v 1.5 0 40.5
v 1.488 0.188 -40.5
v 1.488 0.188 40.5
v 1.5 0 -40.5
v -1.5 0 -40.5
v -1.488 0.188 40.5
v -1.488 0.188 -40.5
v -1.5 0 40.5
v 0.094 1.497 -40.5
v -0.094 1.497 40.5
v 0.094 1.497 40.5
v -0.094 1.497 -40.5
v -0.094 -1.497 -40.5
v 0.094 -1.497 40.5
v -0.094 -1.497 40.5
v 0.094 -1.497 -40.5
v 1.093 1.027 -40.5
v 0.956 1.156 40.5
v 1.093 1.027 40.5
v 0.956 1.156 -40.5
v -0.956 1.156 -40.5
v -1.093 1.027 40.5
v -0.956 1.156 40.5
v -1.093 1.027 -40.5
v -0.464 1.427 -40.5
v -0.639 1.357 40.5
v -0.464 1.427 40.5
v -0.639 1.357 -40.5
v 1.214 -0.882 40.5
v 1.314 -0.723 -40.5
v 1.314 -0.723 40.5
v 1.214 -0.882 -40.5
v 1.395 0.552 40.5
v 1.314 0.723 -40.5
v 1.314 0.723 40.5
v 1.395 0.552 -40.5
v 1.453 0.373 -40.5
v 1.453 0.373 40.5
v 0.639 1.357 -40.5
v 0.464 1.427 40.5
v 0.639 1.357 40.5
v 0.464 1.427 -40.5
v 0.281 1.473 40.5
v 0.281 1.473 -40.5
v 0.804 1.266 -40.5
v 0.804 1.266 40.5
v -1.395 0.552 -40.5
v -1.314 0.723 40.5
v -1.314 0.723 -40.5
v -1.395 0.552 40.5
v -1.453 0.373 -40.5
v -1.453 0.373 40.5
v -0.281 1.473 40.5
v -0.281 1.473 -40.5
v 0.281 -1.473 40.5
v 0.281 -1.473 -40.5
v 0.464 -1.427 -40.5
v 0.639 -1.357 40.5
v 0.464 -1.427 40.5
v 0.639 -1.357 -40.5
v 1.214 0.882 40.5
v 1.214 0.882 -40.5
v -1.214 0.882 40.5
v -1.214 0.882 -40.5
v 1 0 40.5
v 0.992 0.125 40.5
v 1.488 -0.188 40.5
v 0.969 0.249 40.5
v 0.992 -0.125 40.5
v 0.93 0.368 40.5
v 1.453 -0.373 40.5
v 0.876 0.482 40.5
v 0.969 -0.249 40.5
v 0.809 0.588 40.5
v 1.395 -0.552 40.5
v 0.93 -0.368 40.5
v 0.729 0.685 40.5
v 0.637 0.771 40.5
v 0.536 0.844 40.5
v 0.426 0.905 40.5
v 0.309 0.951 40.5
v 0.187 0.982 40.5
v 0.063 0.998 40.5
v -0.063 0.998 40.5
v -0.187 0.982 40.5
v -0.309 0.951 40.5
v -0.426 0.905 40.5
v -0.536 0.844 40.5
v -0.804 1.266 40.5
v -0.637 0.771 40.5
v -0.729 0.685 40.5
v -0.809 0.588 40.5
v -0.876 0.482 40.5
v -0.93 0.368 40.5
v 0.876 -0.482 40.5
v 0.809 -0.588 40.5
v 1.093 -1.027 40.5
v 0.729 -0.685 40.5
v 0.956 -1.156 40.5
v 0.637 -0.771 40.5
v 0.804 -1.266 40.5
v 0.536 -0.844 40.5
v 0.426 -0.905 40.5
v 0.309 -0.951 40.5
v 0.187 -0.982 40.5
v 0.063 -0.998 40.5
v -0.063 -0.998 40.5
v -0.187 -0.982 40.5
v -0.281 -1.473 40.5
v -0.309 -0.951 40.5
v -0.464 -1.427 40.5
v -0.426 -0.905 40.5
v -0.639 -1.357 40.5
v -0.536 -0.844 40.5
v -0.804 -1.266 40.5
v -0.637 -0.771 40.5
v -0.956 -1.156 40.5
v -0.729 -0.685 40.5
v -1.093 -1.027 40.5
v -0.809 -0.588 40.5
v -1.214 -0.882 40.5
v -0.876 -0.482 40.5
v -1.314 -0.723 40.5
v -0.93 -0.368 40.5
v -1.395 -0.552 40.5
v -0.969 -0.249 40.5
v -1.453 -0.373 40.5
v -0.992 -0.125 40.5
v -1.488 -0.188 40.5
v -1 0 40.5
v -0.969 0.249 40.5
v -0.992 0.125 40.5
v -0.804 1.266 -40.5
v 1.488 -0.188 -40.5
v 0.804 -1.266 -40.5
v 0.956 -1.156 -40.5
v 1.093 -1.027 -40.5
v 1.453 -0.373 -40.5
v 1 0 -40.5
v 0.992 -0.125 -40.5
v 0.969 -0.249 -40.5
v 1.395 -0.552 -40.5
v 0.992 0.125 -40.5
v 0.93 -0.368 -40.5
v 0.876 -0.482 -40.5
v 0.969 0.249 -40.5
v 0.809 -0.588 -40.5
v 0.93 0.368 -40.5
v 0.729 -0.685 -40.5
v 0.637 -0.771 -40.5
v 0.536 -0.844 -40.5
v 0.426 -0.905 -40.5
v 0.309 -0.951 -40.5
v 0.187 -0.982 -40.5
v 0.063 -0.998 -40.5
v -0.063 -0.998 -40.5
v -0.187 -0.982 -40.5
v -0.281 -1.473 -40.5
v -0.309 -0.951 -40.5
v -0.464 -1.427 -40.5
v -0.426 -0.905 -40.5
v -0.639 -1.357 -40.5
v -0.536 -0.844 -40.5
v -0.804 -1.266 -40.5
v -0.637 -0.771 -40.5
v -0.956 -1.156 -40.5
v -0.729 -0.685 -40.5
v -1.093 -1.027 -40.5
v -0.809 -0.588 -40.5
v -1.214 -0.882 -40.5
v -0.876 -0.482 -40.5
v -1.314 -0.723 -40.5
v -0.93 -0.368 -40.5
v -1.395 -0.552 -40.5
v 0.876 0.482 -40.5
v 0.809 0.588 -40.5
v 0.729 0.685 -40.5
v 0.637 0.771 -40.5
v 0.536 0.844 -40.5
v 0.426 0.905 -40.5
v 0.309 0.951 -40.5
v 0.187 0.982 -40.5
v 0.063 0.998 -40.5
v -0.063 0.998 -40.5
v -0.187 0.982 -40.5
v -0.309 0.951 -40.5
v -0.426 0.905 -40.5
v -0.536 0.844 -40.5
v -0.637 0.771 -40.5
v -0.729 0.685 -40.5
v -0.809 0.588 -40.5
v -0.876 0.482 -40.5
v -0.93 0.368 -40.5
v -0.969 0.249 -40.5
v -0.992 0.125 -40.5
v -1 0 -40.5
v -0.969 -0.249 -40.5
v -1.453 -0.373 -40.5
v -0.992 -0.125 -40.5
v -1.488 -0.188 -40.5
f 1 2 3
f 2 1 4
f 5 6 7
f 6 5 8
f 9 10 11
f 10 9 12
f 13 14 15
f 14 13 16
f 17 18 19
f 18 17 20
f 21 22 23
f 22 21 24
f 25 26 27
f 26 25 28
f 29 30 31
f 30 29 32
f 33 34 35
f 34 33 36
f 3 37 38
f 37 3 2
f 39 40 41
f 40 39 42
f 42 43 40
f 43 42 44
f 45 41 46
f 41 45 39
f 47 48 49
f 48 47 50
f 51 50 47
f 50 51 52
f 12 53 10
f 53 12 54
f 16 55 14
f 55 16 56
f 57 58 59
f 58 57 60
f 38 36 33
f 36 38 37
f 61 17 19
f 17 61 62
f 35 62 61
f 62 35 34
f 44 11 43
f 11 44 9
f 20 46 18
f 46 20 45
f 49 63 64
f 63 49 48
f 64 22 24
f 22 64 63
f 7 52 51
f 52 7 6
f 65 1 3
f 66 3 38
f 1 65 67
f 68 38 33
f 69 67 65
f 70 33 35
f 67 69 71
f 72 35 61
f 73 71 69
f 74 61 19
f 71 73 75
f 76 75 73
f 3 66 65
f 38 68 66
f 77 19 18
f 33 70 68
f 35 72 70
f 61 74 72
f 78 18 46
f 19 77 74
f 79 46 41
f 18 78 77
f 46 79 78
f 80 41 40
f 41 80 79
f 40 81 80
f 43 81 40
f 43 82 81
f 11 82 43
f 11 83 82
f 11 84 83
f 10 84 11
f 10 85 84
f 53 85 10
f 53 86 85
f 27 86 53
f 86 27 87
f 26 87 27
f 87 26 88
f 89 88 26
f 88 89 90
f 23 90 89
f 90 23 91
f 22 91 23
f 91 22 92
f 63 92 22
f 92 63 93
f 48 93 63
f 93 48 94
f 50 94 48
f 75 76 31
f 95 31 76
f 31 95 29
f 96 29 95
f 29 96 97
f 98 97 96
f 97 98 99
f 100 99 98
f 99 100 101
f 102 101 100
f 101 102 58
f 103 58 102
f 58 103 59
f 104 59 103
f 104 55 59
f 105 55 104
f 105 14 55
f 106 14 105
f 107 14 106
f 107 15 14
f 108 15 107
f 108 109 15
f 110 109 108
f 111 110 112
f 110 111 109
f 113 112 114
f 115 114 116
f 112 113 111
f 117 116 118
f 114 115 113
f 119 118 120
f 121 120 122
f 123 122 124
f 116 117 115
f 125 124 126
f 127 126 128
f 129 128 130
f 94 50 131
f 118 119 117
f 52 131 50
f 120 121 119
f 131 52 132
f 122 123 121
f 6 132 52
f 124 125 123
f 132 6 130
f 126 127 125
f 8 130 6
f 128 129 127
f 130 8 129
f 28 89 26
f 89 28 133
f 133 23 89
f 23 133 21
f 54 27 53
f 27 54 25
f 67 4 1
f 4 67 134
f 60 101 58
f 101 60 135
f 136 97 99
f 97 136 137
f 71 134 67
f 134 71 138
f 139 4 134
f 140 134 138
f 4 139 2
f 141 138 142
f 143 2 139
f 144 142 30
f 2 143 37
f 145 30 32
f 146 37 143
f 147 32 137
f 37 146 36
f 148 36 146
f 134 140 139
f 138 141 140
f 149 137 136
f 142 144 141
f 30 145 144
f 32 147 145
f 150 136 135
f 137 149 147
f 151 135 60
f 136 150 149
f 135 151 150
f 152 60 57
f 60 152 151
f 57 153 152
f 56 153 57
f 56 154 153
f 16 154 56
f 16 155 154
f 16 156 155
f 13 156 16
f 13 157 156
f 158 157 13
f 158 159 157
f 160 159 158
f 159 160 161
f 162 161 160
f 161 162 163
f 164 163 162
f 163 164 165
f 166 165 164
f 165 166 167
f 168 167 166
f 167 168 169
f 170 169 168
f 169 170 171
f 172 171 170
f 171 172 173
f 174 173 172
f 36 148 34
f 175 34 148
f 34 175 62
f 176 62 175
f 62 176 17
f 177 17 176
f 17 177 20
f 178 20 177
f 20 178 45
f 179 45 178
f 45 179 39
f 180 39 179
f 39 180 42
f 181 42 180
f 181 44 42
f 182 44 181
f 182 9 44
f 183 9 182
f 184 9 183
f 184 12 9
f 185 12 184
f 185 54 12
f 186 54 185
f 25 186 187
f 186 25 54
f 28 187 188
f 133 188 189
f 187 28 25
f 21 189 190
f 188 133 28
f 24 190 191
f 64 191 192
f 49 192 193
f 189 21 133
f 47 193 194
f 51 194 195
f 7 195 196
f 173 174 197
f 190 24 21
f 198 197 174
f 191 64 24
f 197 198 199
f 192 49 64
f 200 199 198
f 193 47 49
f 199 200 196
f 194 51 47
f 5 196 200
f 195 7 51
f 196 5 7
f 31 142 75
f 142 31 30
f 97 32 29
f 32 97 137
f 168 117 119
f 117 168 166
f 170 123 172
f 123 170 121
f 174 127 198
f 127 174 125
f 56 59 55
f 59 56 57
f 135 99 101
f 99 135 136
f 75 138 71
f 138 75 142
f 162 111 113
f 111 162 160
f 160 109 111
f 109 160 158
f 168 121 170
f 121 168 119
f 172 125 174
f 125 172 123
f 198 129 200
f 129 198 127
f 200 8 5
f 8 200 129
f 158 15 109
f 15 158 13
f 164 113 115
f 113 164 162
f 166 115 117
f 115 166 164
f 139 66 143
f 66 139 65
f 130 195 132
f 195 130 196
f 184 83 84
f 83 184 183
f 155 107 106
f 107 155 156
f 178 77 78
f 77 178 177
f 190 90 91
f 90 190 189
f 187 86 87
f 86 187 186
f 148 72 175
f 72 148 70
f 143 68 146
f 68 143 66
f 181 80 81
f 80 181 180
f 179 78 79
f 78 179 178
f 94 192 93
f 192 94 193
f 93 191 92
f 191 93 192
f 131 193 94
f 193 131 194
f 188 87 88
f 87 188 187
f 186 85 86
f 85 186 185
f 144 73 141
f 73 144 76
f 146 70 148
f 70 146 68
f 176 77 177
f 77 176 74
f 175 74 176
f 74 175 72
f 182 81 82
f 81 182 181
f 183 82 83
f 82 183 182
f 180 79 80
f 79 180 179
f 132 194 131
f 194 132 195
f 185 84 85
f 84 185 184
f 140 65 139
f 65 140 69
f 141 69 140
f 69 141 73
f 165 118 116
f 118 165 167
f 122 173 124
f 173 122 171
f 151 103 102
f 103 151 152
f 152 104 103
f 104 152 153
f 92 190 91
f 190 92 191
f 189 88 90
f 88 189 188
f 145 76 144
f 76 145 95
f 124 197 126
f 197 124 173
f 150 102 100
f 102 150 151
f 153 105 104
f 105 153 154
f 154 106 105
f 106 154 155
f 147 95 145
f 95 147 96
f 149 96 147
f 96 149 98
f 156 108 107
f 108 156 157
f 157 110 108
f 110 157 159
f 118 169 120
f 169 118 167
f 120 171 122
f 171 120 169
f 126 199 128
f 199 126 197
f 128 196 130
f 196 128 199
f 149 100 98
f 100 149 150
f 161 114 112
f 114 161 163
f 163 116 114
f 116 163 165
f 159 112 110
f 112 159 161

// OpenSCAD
$fn = 50;


difference() {
	union() {
		translate(v = [0, 0, -40.5000000000]) {
			cylinder(h = 81, r = 1.5000000000);
		}
	}
	union() {
		translate(v = [0, 0, -100.0000000000]) {
			cylinder(h = 200, r = 1.0000000000);
		}
	}
}
